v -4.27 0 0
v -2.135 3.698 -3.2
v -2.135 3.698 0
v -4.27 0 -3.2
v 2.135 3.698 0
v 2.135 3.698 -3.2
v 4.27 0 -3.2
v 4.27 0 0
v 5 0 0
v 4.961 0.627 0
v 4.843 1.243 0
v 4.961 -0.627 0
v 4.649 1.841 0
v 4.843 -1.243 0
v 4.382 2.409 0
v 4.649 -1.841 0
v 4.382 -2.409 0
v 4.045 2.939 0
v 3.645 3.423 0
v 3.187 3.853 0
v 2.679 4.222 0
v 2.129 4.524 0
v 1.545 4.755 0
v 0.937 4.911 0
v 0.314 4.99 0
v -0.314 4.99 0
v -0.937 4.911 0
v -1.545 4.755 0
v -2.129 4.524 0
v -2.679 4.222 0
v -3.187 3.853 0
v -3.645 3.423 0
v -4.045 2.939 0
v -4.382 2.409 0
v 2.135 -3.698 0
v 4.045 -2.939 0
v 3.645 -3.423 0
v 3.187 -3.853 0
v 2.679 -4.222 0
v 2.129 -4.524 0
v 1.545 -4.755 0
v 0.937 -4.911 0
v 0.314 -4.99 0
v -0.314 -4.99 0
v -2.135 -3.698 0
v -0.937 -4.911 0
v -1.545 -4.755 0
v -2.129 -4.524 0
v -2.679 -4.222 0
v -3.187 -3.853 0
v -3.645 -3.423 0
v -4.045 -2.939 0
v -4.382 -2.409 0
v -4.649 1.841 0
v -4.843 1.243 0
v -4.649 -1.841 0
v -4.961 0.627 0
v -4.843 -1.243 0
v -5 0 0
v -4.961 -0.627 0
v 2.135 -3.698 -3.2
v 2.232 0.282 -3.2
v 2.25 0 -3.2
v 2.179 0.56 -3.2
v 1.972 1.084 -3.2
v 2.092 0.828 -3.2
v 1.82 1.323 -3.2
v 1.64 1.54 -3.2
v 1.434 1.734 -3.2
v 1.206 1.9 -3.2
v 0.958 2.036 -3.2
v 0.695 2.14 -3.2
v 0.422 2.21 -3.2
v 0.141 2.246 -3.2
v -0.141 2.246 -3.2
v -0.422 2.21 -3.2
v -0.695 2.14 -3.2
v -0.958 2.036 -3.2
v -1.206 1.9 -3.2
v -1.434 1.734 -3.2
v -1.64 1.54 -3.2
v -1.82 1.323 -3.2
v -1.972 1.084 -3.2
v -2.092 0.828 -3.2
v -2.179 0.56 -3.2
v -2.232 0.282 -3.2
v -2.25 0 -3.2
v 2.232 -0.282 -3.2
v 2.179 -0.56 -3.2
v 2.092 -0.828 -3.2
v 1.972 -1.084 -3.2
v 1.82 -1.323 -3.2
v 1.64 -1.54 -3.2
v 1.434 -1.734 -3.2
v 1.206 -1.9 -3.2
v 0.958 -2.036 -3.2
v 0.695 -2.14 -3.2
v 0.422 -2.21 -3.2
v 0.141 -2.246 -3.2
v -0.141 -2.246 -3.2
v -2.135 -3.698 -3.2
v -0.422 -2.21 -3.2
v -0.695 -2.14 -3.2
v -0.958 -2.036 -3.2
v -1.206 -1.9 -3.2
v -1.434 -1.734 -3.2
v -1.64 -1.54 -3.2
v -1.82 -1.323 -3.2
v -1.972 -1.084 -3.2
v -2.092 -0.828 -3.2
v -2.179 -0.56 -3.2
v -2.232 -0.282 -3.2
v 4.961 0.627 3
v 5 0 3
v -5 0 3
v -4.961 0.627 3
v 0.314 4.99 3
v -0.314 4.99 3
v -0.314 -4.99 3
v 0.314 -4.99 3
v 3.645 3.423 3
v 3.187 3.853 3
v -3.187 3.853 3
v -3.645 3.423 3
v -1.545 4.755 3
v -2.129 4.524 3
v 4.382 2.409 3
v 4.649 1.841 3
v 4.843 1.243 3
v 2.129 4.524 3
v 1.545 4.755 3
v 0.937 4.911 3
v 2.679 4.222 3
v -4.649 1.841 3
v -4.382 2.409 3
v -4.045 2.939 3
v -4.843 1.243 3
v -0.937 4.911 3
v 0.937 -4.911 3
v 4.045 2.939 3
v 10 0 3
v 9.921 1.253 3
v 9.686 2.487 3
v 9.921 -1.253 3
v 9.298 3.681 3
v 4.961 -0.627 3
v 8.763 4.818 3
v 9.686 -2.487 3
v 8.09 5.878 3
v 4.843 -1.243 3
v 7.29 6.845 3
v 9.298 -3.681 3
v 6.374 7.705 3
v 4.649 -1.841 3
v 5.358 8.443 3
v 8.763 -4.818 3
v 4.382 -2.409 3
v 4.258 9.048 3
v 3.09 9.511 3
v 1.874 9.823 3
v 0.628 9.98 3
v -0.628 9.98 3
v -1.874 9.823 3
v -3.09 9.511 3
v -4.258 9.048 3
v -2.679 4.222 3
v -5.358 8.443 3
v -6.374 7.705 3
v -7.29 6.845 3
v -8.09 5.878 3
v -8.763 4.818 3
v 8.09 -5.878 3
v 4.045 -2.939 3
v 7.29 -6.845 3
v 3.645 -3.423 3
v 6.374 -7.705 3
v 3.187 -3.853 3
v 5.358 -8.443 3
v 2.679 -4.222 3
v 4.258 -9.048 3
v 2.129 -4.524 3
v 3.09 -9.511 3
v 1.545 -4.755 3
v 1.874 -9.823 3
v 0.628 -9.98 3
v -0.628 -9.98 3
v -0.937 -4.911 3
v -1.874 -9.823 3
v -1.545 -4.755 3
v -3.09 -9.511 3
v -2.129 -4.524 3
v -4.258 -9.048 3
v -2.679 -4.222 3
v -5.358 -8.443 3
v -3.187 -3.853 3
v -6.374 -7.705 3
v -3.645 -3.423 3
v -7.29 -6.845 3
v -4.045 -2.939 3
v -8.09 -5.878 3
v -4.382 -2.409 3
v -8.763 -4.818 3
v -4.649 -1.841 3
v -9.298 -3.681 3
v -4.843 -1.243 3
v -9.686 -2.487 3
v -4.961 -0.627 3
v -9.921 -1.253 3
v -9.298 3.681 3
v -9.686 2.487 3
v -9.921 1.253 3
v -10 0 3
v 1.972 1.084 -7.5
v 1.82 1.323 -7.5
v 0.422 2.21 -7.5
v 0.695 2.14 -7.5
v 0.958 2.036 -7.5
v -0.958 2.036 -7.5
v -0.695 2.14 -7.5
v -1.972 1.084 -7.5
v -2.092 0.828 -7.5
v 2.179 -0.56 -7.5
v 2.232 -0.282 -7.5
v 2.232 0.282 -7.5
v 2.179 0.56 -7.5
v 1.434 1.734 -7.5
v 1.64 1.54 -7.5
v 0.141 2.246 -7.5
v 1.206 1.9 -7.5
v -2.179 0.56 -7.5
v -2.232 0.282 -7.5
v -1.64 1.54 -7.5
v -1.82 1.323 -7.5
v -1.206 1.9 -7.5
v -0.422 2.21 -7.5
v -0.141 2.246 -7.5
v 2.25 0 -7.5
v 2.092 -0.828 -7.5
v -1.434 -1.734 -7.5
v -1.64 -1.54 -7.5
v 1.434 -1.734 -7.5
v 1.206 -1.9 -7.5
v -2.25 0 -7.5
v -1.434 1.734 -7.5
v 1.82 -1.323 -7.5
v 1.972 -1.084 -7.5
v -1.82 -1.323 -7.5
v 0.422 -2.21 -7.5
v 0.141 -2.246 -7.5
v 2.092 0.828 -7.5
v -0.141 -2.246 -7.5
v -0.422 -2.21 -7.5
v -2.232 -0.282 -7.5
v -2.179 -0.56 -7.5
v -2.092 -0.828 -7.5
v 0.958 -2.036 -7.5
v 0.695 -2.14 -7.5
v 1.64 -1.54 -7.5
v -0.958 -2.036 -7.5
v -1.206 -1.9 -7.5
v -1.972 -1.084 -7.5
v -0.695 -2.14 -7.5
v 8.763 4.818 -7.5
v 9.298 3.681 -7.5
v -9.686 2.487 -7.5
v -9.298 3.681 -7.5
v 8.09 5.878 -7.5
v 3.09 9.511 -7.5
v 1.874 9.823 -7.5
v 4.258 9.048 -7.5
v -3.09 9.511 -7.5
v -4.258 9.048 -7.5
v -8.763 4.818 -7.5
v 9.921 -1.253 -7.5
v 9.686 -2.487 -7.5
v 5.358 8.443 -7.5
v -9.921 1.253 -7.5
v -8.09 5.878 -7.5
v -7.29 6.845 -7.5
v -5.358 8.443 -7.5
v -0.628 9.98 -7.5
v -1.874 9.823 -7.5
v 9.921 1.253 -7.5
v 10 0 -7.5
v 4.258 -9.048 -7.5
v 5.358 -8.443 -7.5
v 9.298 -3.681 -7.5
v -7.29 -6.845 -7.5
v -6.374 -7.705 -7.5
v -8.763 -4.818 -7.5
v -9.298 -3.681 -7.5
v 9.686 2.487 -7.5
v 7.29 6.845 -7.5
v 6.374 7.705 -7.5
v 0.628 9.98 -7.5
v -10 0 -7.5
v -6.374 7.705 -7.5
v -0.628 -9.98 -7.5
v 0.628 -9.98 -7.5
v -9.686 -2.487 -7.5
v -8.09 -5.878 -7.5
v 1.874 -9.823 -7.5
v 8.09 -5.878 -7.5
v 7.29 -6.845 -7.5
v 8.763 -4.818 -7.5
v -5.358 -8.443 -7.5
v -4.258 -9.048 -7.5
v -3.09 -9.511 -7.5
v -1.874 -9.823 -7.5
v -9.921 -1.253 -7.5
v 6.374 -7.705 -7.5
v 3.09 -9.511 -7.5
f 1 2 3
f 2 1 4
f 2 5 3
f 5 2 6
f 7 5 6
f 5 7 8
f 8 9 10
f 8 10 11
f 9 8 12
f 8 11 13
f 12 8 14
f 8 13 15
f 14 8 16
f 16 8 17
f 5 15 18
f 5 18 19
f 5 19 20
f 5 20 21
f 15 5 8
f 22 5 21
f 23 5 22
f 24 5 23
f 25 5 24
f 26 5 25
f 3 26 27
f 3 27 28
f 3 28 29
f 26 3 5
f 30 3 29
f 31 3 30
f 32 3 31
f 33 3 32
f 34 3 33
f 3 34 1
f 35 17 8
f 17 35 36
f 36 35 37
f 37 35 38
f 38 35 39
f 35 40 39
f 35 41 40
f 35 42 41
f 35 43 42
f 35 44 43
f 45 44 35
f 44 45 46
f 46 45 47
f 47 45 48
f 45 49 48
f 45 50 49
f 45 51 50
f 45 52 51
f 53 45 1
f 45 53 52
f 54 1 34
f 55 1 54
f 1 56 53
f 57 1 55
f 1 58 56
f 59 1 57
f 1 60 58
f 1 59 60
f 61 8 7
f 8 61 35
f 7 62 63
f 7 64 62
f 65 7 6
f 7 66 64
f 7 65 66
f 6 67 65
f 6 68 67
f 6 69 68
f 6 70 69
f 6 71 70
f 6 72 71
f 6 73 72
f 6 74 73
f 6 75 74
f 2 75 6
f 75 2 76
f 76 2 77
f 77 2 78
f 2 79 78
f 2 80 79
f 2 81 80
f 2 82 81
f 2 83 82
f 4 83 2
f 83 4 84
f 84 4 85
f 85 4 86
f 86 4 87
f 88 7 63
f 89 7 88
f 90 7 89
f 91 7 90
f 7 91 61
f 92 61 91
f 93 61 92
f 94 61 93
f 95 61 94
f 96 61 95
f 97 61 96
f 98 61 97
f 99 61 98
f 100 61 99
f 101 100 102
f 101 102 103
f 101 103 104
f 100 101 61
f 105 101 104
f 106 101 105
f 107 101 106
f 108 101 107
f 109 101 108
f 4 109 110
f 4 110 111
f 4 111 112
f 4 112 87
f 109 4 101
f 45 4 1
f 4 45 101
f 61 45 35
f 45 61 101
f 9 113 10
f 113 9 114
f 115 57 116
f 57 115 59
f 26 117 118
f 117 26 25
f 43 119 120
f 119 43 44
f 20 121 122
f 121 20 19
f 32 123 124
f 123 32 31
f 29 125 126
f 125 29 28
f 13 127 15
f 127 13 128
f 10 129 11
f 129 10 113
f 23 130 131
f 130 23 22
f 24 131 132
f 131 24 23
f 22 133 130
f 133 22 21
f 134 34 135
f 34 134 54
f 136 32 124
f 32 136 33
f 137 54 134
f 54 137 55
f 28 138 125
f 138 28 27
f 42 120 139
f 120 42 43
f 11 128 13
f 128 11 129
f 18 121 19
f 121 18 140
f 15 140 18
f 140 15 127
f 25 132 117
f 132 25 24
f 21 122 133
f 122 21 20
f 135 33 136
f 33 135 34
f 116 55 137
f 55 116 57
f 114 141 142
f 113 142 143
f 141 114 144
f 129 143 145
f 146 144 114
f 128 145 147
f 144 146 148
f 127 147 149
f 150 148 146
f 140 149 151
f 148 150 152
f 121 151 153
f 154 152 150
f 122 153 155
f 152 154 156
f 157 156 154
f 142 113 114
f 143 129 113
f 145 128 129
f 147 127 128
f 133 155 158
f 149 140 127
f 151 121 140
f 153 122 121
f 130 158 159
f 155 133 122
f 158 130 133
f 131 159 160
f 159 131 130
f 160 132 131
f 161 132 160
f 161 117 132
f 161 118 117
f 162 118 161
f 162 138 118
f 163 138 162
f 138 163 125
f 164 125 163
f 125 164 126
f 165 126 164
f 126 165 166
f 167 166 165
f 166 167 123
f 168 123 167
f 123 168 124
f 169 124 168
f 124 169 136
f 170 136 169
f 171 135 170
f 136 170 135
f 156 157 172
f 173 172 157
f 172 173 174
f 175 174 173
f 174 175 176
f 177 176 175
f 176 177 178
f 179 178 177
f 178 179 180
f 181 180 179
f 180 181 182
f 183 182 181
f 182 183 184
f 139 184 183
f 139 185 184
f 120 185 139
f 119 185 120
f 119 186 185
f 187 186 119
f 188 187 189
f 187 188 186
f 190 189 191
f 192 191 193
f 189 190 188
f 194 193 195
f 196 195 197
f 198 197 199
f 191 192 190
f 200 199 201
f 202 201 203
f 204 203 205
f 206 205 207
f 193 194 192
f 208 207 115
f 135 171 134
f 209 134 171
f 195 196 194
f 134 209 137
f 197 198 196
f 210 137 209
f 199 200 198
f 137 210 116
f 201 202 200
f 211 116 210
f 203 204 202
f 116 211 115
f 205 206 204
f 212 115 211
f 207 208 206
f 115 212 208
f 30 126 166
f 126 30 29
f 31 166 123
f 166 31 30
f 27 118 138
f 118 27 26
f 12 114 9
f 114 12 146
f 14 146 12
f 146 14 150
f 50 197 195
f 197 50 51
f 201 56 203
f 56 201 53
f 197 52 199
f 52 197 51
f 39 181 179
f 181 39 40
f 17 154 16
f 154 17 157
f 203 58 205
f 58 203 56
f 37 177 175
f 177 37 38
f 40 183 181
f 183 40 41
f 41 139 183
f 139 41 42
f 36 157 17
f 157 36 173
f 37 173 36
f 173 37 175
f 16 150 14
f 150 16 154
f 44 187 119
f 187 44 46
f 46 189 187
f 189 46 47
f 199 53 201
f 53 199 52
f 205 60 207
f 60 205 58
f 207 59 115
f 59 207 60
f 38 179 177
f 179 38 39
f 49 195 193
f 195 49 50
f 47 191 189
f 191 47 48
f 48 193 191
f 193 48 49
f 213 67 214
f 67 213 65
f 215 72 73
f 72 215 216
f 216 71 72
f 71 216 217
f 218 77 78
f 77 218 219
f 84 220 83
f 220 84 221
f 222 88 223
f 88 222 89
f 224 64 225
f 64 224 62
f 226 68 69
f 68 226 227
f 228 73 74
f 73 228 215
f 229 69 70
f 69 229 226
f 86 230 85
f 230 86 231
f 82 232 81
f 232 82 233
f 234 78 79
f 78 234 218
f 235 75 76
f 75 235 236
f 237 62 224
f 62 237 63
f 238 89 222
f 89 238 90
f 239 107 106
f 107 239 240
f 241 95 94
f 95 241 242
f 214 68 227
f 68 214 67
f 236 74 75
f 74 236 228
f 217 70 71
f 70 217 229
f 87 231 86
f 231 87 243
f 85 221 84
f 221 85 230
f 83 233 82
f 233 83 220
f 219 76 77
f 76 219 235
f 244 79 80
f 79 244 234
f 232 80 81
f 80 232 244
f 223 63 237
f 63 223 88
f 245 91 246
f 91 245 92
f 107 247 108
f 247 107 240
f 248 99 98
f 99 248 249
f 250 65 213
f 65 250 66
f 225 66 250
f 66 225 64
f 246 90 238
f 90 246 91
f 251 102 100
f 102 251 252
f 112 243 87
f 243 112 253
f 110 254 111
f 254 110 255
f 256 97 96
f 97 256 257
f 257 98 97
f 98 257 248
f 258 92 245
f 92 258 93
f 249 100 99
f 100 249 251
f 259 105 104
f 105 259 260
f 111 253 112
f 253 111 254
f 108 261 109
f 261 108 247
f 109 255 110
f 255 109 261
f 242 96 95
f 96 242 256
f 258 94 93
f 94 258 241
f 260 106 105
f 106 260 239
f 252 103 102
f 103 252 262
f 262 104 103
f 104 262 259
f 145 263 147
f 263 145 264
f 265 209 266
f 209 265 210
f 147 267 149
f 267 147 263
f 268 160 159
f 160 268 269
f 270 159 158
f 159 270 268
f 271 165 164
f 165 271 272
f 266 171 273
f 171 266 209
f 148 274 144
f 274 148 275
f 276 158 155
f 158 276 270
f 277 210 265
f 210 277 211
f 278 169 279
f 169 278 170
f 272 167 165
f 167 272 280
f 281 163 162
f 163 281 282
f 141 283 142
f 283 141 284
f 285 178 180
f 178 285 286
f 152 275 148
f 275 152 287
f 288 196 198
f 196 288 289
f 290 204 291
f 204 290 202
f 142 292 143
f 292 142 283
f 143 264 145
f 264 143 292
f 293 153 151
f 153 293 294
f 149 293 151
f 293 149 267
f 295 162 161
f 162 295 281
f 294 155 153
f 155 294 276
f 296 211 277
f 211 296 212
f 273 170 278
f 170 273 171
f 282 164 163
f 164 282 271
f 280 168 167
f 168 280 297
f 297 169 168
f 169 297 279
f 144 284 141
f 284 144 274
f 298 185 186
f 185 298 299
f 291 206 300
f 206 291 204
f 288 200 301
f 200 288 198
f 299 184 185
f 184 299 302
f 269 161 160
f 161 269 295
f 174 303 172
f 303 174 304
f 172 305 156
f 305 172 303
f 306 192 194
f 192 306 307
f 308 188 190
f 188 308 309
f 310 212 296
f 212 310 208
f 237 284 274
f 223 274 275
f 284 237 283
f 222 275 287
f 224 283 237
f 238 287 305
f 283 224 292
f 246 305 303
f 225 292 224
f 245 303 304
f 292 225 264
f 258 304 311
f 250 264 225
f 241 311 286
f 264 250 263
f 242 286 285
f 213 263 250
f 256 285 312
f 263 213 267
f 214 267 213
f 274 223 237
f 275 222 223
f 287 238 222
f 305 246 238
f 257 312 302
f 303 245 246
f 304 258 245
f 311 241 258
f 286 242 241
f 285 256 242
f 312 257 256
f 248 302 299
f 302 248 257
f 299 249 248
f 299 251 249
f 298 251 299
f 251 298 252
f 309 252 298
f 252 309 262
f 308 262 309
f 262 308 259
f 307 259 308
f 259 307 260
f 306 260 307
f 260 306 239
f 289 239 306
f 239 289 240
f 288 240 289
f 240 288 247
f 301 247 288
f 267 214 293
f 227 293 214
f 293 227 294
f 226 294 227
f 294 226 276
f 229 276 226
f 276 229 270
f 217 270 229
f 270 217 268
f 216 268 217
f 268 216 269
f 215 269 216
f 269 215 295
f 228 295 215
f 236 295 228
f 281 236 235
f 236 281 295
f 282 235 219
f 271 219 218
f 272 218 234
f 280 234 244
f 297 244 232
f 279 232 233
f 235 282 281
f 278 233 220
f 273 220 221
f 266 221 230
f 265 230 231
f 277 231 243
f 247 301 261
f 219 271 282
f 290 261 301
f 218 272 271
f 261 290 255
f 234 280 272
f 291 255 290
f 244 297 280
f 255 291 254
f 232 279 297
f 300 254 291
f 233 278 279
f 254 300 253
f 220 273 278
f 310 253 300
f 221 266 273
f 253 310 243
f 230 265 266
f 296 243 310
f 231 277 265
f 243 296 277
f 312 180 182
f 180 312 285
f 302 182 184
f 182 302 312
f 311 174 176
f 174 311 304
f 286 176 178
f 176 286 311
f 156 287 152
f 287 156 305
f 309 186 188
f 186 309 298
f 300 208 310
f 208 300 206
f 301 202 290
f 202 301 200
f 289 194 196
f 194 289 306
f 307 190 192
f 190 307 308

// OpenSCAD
$fn = 50;

difference() {
	union() {
		translate(v = [0, 0, -7.5]) {
			cylinder(h = 10.5, r = 10.0);
		}
	}
	union() {
		translate(v = [0, 0, 0]) {
			rotate(a = [0, 0, 0]) {
				difference() {
					union() {
						translate(v = [0, 0, -3.2]) {
							linear_extrude(height = 3.2) {
								polygon(points = [[4.2698, 0.0], [2.1349000000000005, 3.697755269078796], [-2.134899999999999, 3.6977552690787965], [-4.2698, 5.228996902999369e-16], [-2.134900000000002, -3.6977552690787956], [2.1348999999999974, -3.697755269078798]]);
							}
						}
					}
					union();
				}
			}
		}
		#cylinder(h = 3, r = 5.0);
		#translate(v = [0, 0, -100.0]) {
			cylinder(h = 200, r = 2.25);
		}
	}
}
